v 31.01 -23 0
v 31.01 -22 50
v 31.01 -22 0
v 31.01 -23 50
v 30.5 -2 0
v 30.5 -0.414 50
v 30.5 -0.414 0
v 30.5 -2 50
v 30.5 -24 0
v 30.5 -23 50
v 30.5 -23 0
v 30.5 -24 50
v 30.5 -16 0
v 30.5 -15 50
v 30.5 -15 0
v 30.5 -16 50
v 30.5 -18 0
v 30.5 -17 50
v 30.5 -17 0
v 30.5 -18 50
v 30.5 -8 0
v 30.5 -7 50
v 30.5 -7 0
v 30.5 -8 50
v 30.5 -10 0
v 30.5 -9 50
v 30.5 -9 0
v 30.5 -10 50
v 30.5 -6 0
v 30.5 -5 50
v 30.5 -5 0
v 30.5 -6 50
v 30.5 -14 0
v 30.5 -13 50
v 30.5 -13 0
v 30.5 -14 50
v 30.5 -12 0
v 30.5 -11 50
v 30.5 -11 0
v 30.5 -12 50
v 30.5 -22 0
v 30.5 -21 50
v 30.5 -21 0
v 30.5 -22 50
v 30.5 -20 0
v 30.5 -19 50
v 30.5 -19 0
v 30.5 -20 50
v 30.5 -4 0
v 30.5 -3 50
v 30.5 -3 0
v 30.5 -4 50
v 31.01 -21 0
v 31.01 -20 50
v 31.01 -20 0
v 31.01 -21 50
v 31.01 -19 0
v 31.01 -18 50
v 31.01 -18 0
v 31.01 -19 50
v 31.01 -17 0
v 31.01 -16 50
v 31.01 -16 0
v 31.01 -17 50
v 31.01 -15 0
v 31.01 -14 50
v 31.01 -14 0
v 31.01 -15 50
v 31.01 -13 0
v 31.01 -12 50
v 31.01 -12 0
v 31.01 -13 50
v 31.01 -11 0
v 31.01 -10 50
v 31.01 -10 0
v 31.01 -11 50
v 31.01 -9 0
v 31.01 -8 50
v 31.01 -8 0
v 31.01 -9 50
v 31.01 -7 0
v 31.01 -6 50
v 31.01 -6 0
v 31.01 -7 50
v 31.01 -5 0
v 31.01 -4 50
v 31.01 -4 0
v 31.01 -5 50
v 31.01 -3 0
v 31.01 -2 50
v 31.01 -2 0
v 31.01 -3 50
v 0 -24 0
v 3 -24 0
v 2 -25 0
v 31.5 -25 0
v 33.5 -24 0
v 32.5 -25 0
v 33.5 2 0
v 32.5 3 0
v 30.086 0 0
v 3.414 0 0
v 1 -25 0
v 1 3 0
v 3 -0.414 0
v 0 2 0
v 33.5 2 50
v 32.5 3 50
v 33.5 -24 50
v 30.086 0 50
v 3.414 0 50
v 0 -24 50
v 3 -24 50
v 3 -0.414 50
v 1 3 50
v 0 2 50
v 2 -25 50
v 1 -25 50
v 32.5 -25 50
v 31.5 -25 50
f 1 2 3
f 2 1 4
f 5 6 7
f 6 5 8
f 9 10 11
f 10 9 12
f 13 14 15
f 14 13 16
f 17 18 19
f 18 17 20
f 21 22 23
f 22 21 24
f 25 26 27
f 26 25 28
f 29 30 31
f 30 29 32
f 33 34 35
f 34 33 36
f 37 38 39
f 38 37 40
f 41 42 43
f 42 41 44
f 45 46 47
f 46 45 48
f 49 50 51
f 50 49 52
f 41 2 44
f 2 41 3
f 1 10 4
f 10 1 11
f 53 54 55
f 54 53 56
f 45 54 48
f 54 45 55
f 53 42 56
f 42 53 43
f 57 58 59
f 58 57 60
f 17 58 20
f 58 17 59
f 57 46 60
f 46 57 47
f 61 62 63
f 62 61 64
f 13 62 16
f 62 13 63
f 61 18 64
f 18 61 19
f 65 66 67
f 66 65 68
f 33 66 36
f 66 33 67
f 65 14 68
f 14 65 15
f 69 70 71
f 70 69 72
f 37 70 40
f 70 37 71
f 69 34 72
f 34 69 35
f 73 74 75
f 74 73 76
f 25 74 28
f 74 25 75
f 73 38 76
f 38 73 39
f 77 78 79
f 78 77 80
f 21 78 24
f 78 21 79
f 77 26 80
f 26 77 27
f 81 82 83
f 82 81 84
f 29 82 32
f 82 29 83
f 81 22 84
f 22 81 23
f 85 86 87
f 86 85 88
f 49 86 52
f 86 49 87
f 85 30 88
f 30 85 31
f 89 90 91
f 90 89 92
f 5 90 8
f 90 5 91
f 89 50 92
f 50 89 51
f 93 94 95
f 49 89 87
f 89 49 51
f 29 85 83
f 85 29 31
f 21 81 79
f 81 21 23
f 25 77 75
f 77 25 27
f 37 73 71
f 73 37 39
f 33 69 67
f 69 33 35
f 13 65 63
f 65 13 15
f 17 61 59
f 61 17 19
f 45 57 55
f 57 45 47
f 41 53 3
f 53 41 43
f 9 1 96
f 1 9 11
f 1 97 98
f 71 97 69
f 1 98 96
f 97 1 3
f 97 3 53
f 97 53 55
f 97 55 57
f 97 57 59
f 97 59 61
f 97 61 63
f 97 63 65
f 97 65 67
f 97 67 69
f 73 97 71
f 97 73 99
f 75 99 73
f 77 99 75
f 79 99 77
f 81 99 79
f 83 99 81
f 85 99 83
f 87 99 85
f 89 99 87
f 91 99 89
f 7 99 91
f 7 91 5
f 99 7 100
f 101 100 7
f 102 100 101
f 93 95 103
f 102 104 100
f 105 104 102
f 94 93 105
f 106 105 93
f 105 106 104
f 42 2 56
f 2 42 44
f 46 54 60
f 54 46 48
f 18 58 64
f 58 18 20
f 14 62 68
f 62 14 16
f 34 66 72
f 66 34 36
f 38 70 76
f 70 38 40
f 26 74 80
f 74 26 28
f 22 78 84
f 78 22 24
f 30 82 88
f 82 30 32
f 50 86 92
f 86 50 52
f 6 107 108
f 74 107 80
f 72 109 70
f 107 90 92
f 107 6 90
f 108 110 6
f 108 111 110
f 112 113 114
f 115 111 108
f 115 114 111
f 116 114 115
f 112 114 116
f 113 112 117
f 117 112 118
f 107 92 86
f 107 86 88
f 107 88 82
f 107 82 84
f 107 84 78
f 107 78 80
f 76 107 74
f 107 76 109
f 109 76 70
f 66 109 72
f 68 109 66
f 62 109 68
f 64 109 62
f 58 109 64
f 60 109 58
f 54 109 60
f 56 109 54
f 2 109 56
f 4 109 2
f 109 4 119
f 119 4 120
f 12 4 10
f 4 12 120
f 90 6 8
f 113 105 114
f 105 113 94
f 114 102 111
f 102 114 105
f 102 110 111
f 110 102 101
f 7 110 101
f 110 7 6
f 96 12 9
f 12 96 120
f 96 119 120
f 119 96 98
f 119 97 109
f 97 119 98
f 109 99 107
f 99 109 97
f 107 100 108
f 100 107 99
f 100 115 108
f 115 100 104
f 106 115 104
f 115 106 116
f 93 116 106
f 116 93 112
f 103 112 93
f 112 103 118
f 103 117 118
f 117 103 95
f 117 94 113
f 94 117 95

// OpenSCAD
/* c-clip.scad
 * Parametric C-clip for clamping flat objects with optional grip textures
 * v1.0.0
 *
 * Print orientation: Flat on bed with C-opening facing up (no supports needed)
 */

// =====================================================================
// PARAMETERS
// =====================================================================

// -- Target Object --
target_thickness = 25; // [mm] Thickness of object being clipped
tolerance = 0; // [mm] Fit adjustment (+looser, -tighter)
fabric_gap = 2.5; // [mm] Extra gap on back arm for fabric

// -- Clip Geometry --
front_length = 25; // [mm] Front arm length (from top down)
back_length = 25; // [mm] Back arm length (from top down)
clip_width = 50; // [mm] Width of clip (along clipped edge)
wall = 3; // [mm] Wall thickness

// -- Edge Treatment --
fillet = 1; // [mm] Corner rounding radius (must be < wall/2)

// -- Spring Action --
spring_angle = 0; // [deg] Back arm inward tilt (0 = straight)

// -- Textures --
// Type: 0 = smooth, 1 = ridges, 2 = teeth
front_texture = 0; // Front arm inner surface texture type
front_texture_depth = 0; // [mm] Depth of front texture features
back_texture = 1; // Back arm inner surface texture type
back_texture_depth = 0.5; // [mm] Depth of back texture features
texture_spacing = 2; // [mm] Distance between texture features

// =====================================================================
// COMPUTED VALUES
// =====================================================================

// Internal gap = space for target object + fabric
internal_gap = target_thickness + tolerance + fabric_gap;

// Total profile width (X dimension of C-shape)
profile_width = internal_gap + 2 * wall;

// Clamped fillet (must be < wall/2 to avoid geometry collapse)
safe_fillet = min(fillet, wall / 2 - 0.1);

// =====================================================================
// MAIN RENDER
// =====================================================================

c_clip();

// =====================================================================
// MODULES
// =====================================================================

/**
 * Main clip assembly
 * Combines base geometry with texture cutouts
 */
module c_clip() {
  difference() {
    // Base clip body with rounded corners
    linear_extrude(clip_width)
      offset(r=safe_fillet)
        offset(r=-safe_fillet)
          c_profile();

    // Texture cutouts
    if (front_texture > 0 && front_texture_depth > 0)
      front_texture_cuts();
    if (back_texture > 0 && back_texture_depth > 0)
      back_texture_cuts();
  }
}

/**
 * 2D C-shaped profile
 * Origin at top-left outer corner, arms extend downward (-Y)
 */
module c_profile() {
  // Top bar
  square([profile_width, wall]);

  // Front arm (left side)
  translate([0, -front_length])
    square([wall, front_length + wall]);

  // Back arm (right side, with optional spring angle)
  translate([profile_width - wall, 0])
    back_arm_profile();
}

/**
 * Back arm profile with optional spring angle
 */
module back_arm_profile() {
  if (spring_angle == 0) {
    // Straight arm
    translate([0, -back_length])
      square([wall, back_length + wall]);
  } else {
    // Angled arm for spring pressure
    // Tip moves inward (toward front arm) as it goes down
    inward_shift = sin(spring_angle) * back_length;
    polygon(
      [
        [0, wall],
        [wall, wall],
        [wall - inward_shift, -back_length],
        [-inward_shift, -back_length],
      ]
    );
  }
}

/**
 * Texture cuts on front arm inner face
 */
module front_texture_cuts() {
  // Margin to stay clear of rounded corners
  margin = safe_fillet + 1;
  // Position at inner face of front arm, cutting inward (+X)
  translate([wall - front_texture_depth, -front_length + margin, -0.01])
    texture_pattern(
      front_texture,
      front_texture_depth,
      front_length - margin - safe_fillet,
      clip_width + 0.02
    );
}

/**
 * Texture cuts on back arm inner face
 */
module back_texture_cuts() {
  // Margin to stay clear of rounded corners
  margin = safe_fillet + 1;
  // Position at inner face of back arm, cutting into wall (+X direction)
  translate([wall + internal_gap, -back_length + margin, -0.01])
    texture_pattern(
      back_texture,
      back_texture_depth,
      back_length - margin - safe_fillet,
      clip_width + 0.02
    );
}

/**
 * Generate texture pattern geometry
 * @param type      Texture type (0=smooth, 1=ridges, 2=teeth)
 * @param depth     How deep the texture cuts into the surface
 * @param length    Length of textured area (along arm)
 * @param width     Width of textured area (clip width)
 */
module texture_pattern(type, depth, length, width) {
  if (type > 0 && depth > 0) {
    feature_count = floor(length / texture_spacing);

    for (i = [0:feature_count - 1]) {
      y_offset = i * texture_spacing;

      if (type == 1) {
        // Ridges - rectangular grooves
        translate([0, y_offset, 0])
          cube([depth + 0.01, texture_spacing * 0.5, width]);
      } else if (type == 2) {
        // Teeth - triangular serrations
        translate([0, y_offset, 0])
          linear_extrude(width)
            polygon(
              [
                [0, 0],
                [depth + 0.01, texture_spacing * 0.4],
                [0, texture_spacing * 0.8],
              ]
            );
      }
    }
  }
}

// =====================================================================
// PARAMETER REFERENCE
// =====================================================================
/*
 * Quick parameter guide:
 *
 * SIZING:
 *   target_thickness  - Measure your headboard/object thickness
 *   tolerance         - Start at 0, adjust after test print (-0.2 tighter, +0.2 looser)
 *   fabric_gap        - Thickness of fabric being held (2-3mm typical)
 *   front_length      - Visible side, can be shorter for aesthetics
 *   back_length       - Hidden side with fabric, typically same or longer
 *   clip_width        - How wide the clip spans along the edge
 *   wall              - 2-3mm for PLA, affects stiffness
 *
 * GRIP:
 *   spring_angle      - 2-3° adds spring pressure on back arm
 *   front_texture     - Usually 0 (smooth) to avoid marking visible surfaces
 *   back_texture      - 1 (ridges) or 2 (teeth) to grip fabric
 *   texture_depth     - 0.3-0.5mm for ridges, 0.5-1mm for teeth
 *   texture_spacing   - 2mm default, smaller = more aggressive
 *
 * PRINT:
 *   fillet            - 2mm rounds corners for comfort and print quality
 *   Print flat with C-opening up, no supports needed
 *   Black PLA at 0.2mm layer height works well
 */
